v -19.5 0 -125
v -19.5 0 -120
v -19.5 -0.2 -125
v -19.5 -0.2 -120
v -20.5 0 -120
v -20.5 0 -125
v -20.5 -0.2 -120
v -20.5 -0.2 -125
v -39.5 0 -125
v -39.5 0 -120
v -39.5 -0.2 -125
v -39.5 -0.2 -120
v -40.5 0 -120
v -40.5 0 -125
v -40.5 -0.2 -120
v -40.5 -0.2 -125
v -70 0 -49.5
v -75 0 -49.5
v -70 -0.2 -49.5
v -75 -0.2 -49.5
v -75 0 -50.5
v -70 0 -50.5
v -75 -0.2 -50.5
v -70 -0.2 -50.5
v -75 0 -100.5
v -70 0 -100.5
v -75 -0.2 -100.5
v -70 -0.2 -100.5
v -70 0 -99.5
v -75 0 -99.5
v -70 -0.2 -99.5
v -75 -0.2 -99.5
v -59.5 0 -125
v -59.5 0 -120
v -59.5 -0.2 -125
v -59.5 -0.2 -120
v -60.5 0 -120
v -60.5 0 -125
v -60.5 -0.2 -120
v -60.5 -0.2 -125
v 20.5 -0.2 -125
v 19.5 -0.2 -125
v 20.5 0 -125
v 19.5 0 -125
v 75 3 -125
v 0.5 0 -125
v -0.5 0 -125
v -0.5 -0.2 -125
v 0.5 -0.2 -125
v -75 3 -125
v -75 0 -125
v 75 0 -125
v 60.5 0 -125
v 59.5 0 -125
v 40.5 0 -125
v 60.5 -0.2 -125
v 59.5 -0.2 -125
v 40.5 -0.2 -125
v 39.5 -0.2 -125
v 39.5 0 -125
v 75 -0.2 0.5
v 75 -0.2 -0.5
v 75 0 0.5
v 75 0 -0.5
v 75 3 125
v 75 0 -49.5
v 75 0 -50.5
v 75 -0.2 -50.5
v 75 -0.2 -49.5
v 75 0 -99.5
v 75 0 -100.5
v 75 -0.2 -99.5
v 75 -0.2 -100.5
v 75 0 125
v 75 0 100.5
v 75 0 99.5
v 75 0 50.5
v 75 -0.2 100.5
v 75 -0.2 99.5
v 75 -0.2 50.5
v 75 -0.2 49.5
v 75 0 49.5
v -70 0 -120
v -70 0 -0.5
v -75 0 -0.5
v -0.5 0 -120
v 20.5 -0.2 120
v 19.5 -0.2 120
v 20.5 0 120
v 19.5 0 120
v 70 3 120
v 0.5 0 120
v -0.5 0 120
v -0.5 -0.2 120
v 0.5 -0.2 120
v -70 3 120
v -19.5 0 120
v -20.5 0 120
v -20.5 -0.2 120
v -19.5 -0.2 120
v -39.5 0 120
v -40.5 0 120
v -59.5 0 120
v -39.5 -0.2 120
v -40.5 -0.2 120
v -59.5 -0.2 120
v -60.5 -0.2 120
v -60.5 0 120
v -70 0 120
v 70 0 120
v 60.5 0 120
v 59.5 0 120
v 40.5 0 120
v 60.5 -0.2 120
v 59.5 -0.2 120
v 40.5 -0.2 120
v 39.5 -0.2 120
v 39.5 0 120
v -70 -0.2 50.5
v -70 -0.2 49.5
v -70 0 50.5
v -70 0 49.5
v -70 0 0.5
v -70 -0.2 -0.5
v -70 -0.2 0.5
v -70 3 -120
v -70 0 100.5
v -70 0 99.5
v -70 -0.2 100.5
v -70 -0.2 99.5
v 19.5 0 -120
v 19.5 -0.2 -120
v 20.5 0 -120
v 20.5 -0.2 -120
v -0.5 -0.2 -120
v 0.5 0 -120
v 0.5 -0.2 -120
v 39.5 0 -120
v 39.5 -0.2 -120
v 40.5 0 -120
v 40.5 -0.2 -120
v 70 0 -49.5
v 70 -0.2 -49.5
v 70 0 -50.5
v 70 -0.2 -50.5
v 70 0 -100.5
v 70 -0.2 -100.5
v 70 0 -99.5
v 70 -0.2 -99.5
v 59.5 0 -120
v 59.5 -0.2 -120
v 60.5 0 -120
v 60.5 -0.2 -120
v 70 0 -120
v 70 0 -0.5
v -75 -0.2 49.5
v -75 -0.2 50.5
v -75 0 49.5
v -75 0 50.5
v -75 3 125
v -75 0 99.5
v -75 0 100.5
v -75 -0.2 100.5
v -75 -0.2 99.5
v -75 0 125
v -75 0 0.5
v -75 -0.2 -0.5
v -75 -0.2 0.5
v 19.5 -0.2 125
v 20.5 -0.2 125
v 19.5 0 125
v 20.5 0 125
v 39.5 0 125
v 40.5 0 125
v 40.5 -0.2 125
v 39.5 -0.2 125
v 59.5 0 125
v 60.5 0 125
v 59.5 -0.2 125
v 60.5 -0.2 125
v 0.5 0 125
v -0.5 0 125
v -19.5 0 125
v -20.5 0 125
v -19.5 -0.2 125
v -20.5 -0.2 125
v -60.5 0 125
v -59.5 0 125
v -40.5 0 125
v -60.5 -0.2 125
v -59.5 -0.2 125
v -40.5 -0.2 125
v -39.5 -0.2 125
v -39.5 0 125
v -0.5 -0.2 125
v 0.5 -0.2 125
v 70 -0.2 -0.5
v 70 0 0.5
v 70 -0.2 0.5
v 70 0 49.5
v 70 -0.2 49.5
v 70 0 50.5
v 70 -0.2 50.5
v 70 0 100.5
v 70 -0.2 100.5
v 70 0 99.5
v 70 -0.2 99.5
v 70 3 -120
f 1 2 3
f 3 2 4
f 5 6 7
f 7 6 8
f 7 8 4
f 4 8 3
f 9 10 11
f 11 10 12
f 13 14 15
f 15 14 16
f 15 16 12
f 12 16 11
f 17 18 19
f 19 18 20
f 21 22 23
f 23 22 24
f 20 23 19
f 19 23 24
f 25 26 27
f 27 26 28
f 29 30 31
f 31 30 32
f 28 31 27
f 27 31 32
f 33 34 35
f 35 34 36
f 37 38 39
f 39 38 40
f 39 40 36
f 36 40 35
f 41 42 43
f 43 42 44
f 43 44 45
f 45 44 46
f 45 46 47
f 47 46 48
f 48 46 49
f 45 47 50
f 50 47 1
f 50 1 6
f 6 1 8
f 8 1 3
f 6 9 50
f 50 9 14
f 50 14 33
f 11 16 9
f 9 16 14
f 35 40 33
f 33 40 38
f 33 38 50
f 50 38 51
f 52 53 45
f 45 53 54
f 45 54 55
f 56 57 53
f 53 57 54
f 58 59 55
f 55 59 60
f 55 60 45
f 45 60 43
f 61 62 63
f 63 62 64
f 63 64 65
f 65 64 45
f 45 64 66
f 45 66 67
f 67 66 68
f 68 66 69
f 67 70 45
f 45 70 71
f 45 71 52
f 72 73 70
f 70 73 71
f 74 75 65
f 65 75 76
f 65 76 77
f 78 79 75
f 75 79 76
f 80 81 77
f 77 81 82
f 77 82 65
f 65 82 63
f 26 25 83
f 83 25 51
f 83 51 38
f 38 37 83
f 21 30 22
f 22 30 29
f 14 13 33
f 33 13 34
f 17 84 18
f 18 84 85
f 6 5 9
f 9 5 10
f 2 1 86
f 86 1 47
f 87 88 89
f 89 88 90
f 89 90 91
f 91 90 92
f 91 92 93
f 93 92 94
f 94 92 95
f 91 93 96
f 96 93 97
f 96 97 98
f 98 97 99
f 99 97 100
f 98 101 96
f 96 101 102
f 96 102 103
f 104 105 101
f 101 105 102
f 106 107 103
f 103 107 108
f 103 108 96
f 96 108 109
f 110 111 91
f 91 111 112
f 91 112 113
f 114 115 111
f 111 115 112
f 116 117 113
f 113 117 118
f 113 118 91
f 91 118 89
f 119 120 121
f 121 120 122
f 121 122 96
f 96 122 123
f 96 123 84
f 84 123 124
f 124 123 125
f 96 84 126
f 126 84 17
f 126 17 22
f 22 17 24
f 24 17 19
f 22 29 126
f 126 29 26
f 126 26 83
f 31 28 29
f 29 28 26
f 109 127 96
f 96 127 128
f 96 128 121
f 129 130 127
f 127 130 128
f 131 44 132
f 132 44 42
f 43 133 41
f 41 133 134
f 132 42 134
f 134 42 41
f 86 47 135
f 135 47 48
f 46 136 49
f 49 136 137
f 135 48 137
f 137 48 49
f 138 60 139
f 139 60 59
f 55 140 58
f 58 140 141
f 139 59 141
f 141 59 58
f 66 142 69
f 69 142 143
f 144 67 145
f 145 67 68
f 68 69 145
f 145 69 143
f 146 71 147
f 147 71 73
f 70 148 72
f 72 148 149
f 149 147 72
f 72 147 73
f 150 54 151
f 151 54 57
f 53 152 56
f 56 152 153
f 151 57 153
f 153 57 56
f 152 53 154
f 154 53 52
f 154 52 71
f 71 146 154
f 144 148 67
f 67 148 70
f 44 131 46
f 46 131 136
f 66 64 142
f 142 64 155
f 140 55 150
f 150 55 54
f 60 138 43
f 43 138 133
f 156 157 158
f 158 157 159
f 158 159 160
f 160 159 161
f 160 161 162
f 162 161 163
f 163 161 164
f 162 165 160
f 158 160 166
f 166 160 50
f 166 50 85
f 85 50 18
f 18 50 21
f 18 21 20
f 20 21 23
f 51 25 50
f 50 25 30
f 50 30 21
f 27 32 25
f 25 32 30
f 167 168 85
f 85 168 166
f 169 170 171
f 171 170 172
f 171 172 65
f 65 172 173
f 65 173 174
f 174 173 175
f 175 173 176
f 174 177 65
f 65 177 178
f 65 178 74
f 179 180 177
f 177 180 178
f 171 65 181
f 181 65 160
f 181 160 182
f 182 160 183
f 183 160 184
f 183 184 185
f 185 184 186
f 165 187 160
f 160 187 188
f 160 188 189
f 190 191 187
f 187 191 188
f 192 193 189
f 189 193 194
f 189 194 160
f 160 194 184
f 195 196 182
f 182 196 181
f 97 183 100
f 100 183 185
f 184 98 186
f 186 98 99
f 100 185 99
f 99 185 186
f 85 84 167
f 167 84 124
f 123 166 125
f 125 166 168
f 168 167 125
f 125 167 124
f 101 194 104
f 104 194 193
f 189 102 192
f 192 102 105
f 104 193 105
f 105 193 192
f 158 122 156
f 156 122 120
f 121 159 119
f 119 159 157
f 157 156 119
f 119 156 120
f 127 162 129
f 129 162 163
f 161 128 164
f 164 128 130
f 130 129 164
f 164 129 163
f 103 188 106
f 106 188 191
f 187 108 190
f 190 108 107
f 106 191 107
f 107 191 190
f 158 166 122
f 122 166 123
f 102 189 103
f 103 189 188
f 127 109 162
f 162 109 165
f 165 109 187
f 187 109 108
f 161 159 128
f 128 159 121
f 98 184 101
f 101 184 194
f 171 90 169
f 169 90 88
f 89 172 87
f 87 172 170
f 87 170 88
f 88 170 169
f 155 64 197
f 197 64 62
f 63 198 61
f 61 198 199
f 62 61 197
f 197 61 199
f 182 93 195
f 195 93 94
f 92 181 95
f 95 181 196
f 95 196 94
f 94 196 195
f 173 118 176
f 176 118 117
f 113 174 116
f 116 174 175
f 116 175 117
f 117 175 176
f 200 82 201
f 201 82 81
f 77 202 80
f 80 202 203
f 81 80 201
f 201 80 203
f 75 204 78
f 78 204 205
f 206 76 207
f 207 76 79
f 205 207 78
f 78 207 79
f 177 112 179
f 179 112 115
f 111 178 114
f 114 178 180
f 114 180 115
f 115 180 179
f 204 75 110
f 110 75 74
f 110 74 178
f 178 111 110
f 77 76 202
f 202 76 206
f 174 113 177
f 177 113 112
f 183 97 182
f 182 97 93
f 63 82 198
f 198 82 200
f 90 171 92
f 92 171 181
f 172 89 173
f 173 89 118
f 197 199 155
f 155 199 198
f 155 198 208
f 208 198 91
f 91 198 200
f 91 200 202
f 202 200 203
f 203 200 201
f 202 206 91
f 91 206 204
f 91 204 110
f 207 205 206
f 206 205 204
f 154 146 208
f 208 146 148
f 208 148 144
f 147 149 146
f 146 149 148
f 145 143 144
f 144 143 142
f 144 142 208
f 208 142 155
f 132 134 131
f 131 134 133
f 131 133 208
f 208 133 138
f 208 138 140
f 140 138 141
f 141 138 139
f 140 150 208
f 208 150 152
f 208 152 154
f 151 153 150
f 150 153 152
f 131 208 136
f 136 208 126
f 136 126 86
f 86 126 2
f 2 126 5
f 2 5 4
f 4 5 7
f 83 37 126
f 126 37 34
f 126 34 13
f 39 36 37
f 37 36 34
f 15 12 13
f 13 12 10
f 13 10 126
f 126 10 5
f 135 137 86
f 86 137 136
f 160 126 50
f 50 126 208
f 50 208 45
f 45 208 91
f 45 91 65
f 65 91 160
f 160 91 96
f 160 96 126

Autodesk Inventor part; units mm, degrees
ref_plane "YZ Plane" through (0, 0, 0) normal (1, 0, 0) x (0, 1, 0)
ref_plane "XZ Plane" through (0, 0, 0) normal (0, 1, 0) x (-1, 0, 0)
ref_plane "XY Plane" through (0, 0, 0) normal (0, 0, 1) x (1, 0, 0)
sketch "Boceto1" plane through (0, 0, 0) normal (0, 1, 0) x (-1, 0, 0)
  line L0 (-75, -125) -> (75, -125)
  line L1 (75, -125) -> (75, 125)
  line L2 (75, 125) -> (-75, 125)
  line L3 (-75, 125) -> (-75, -125)
  line L4 (-75, -125) -> (75, 125) construction
  line L5 (75, -125) -> (-75, 125) construction
  line L6 (70, 120) -> (70, -120)
  line L7 (70, -120) -> (-70, -120)
  line L8 (-70, -120) -> (-70, 120)
  line L9 (-70, 120) -> (70, 120)
  line L10 (-75, 125) -> (-75, 100)
  line L11 (-75, 100) -> (-70, 100) construction
  line L12 (-75, 100) -> (-75, 50)
  line L13 (-75, 50) -> (-70, 50) construction
  line L14 (-75, 50) -> (-75, 0)
  line L15 (-75, 100.5) -> (-70, 100.5)
  line L16 (-70, 100.5) -> (-70, 99.5)
  line L17 (-70, 99.5) -> (-75, 99.5)
  line L18 (-75, 99.5) -> (-75, 100.5)
  line L19 (-75, 100.5) -> (-70, 99.5) construction
  line L20 (-70, 100.5) -> (-75, 99.5) construction
  line L21 (-75, 49.5) -> (-70, 49.5)
  line L22 (-70, 49.5) -> (-70, 50.5)
  line L23 (-70, 50.5) -> (-75, 50.5)
  line L24 (-75, 50.5) -> (-75, 49.5)
  line L25 (-75, 49.5) -> (-70, 50.5) construction
  line L26 (-70, 49.5) -> (-75, 50.5) construction
  line L27 (0, 125) -> (-20, 125) construction
  line L28 (-20, 125) -> (-40, 125) construction
  line L29 (-40, 125) -> (-60, 125) construction
  line L30 (-20, 125) -> (-20, 120) construction
  line L31 (-40, 125) -> (-40, 120) construction
  line L32 (-60, 125) -> (-60, 120) construction
  line L33 (-20.5, 120) -> (-19.5, 120)
  line L34 (-19.5, 120) -> (-19.5, 125)
  line L35 (-19.5, 125) -> (-20.5, 125)
  line L36 (-20.5, 125) -> (-20.5, 120)
  line L37 (-20.5, 120) -> (-19.5, 125) construction
  line L38 (-19.5, 120) -> (-20.5, 125) construction
  line L39 (-40.5, 120) -> (-39.5, 120)
  line L40 (-39.5, 120) -> (-39.5, 125)
  line L41 (-39.5, 125) -> (-40.5, 125)
  line L42 (-40.5, 125) -> (-40.5, 120)
  line L43 (-40.5, 120) -> (-39.5, 125) construction
  line L44 (-39.5, 120) -> (-40.5, 125) construction
  line L45 (-60.5, 120) -> (-59.5, 120)
  line L46 (-59.5, 120) -> (-59.5, 125)
  line L47 (-59.5, 125) -> (-60.5, 125)
  line L48 (-60.5, 125) -> (-60.5, 120)
  line L49 (-60.5, 120) -> (-59.5, 125) construction
  line L50 (-59.5, 120) -> (-60.5, 125) construction
  line L51 (0, 125) -> (0, 120) construction
  line L52 (-0.5, 120) -> (0.5, 120)
  line L53 (0.5, 120) -> (0.5, 125)
  line L54 (0.5, 125) -> (-0.5, 125)
  line L55 (-0.5, 125) -> (-0.5, 120)
  line L56 (-0.5, 120) -> (0.5, 125) construction
  line L57 (0.5, 120) -> (-0.5, 125) construction
  line L58 (-70, 0) -> (-75, 0) construction
  line L59 (-75, -0.5) -> (-70, -0.5)
  line L60 (-70, -0.5) -> (-70, 0.5)
  line L61 (-70, 0.5) -> (-75, 0.5)
  line L62 (-75, 0.5) -> (-75, -0.5)
  line L63 (-75, -0.5) -> (-70, 0.5) construction
  line L64 (-70, -0.5) -> (-75, 0.5) construction
  point P0 (0, 0)
  point P1 (-72.5, 100)
  point P2 (-72.5, 50)
  point P3 (-20, 122.5)
  point P4 (-40, 122.5)
  point P5 (-60, 122.5)
  point P6 (0, 122.5)
  point P7 (-72.5, 0)
  point P8 (-75, 0.5)
  point P9 (-75, -0.5)
  point P10 (-70, -0.5)
  point P11 (-75, 50.5)
  point P12 (-75, 49.5)
  point P13 (-70, 100.5)
  point P14 (-0.5, 125)
  point P15 (-0.5, 120)
  point P16 (0.5, 120)
  point P17 (0.5, 125)
  point P18 (-20.5, 125)
  point P19 (-19.5, 125)
  point P20 (-40.5, 125)
  point P21 (-40.5, 120)
  point P22 (-39.5, 120)
  point P23 (-39.5, 125)
  point P24 (-60.5, 120)
  point P25 (-59.5, 120)
  point P26 (-59.5, 125)
  dimension "d0" = 150
  dimension "d1" = 250
  dimension "d2" = 5
  dimension "d5" = 25
  dimension "d6" = 50
  dimension "d7" = 50
  dimension "d8" = 1
  dimension "d9" = 1
  dimension "d10" = 20
  dimension "d11" = 20
  dimension "d12" = 20
  dimension "d13" = 1
  dimension "d14" = 1
  dimension "d15" = 1
  dimension "d16" = 1
  dimension "d17" = 1
extrude "Extrusión1" add sketch "Boceto1" along normal blind 3 contours L3 L59 L8 L7 L6 L9 L53 L2 L1 L0 | L3 L61 L8 L59 | L53 L9 L55 L2 | L3 L21 L8 L61 | L55 L9 L34 L2 | L3 L23 L8 L21 | L34 L9 L36 L2 | L23 L3 L17 L8 | L36 L9 L40 L2 | L17 L3 L15 L8 | L40 L9 L42 L2 | L15 L3 L2 L48 L9 L8 | L42 L9 L46 L2 | L46 L9 L48 L2
extrude "Extrusión2" add sketch "Boceto1" against normal blind 0.2 contours L3 L61 L8 L59 | L53 L9 L55 L2 | L3 L23 L8 L21 | L34 L9 L36 L2 | L17 L3 L15 L8 | L40 L9 L42 L2 | L46 L9 L48 L2
mirror "Simetría1" about plane through (0, 0, 0) normal (1, 0, 0) of "Extrusión2", "Extrusión1"
mirror "Simetría2" about plane through (0, 0, 0) normal (0, 0, 1) of "Extrusión2", "Extrusión1", "Simetría1"
ref_plane "Plano de trabajo1" through (0, 0, 0) normal (1, 0, 0) x (0, 1, 0)
ref_plane "Plano de trabajo2" through (0, 0, 0) normal (-1, 0, 0) x (0, 1, 0)
ref_plane "Plano de trabajo3" through (0, 0, 0) normal (-1, 0, 0) x (0, 1, 0)
properties part number "medidor"
